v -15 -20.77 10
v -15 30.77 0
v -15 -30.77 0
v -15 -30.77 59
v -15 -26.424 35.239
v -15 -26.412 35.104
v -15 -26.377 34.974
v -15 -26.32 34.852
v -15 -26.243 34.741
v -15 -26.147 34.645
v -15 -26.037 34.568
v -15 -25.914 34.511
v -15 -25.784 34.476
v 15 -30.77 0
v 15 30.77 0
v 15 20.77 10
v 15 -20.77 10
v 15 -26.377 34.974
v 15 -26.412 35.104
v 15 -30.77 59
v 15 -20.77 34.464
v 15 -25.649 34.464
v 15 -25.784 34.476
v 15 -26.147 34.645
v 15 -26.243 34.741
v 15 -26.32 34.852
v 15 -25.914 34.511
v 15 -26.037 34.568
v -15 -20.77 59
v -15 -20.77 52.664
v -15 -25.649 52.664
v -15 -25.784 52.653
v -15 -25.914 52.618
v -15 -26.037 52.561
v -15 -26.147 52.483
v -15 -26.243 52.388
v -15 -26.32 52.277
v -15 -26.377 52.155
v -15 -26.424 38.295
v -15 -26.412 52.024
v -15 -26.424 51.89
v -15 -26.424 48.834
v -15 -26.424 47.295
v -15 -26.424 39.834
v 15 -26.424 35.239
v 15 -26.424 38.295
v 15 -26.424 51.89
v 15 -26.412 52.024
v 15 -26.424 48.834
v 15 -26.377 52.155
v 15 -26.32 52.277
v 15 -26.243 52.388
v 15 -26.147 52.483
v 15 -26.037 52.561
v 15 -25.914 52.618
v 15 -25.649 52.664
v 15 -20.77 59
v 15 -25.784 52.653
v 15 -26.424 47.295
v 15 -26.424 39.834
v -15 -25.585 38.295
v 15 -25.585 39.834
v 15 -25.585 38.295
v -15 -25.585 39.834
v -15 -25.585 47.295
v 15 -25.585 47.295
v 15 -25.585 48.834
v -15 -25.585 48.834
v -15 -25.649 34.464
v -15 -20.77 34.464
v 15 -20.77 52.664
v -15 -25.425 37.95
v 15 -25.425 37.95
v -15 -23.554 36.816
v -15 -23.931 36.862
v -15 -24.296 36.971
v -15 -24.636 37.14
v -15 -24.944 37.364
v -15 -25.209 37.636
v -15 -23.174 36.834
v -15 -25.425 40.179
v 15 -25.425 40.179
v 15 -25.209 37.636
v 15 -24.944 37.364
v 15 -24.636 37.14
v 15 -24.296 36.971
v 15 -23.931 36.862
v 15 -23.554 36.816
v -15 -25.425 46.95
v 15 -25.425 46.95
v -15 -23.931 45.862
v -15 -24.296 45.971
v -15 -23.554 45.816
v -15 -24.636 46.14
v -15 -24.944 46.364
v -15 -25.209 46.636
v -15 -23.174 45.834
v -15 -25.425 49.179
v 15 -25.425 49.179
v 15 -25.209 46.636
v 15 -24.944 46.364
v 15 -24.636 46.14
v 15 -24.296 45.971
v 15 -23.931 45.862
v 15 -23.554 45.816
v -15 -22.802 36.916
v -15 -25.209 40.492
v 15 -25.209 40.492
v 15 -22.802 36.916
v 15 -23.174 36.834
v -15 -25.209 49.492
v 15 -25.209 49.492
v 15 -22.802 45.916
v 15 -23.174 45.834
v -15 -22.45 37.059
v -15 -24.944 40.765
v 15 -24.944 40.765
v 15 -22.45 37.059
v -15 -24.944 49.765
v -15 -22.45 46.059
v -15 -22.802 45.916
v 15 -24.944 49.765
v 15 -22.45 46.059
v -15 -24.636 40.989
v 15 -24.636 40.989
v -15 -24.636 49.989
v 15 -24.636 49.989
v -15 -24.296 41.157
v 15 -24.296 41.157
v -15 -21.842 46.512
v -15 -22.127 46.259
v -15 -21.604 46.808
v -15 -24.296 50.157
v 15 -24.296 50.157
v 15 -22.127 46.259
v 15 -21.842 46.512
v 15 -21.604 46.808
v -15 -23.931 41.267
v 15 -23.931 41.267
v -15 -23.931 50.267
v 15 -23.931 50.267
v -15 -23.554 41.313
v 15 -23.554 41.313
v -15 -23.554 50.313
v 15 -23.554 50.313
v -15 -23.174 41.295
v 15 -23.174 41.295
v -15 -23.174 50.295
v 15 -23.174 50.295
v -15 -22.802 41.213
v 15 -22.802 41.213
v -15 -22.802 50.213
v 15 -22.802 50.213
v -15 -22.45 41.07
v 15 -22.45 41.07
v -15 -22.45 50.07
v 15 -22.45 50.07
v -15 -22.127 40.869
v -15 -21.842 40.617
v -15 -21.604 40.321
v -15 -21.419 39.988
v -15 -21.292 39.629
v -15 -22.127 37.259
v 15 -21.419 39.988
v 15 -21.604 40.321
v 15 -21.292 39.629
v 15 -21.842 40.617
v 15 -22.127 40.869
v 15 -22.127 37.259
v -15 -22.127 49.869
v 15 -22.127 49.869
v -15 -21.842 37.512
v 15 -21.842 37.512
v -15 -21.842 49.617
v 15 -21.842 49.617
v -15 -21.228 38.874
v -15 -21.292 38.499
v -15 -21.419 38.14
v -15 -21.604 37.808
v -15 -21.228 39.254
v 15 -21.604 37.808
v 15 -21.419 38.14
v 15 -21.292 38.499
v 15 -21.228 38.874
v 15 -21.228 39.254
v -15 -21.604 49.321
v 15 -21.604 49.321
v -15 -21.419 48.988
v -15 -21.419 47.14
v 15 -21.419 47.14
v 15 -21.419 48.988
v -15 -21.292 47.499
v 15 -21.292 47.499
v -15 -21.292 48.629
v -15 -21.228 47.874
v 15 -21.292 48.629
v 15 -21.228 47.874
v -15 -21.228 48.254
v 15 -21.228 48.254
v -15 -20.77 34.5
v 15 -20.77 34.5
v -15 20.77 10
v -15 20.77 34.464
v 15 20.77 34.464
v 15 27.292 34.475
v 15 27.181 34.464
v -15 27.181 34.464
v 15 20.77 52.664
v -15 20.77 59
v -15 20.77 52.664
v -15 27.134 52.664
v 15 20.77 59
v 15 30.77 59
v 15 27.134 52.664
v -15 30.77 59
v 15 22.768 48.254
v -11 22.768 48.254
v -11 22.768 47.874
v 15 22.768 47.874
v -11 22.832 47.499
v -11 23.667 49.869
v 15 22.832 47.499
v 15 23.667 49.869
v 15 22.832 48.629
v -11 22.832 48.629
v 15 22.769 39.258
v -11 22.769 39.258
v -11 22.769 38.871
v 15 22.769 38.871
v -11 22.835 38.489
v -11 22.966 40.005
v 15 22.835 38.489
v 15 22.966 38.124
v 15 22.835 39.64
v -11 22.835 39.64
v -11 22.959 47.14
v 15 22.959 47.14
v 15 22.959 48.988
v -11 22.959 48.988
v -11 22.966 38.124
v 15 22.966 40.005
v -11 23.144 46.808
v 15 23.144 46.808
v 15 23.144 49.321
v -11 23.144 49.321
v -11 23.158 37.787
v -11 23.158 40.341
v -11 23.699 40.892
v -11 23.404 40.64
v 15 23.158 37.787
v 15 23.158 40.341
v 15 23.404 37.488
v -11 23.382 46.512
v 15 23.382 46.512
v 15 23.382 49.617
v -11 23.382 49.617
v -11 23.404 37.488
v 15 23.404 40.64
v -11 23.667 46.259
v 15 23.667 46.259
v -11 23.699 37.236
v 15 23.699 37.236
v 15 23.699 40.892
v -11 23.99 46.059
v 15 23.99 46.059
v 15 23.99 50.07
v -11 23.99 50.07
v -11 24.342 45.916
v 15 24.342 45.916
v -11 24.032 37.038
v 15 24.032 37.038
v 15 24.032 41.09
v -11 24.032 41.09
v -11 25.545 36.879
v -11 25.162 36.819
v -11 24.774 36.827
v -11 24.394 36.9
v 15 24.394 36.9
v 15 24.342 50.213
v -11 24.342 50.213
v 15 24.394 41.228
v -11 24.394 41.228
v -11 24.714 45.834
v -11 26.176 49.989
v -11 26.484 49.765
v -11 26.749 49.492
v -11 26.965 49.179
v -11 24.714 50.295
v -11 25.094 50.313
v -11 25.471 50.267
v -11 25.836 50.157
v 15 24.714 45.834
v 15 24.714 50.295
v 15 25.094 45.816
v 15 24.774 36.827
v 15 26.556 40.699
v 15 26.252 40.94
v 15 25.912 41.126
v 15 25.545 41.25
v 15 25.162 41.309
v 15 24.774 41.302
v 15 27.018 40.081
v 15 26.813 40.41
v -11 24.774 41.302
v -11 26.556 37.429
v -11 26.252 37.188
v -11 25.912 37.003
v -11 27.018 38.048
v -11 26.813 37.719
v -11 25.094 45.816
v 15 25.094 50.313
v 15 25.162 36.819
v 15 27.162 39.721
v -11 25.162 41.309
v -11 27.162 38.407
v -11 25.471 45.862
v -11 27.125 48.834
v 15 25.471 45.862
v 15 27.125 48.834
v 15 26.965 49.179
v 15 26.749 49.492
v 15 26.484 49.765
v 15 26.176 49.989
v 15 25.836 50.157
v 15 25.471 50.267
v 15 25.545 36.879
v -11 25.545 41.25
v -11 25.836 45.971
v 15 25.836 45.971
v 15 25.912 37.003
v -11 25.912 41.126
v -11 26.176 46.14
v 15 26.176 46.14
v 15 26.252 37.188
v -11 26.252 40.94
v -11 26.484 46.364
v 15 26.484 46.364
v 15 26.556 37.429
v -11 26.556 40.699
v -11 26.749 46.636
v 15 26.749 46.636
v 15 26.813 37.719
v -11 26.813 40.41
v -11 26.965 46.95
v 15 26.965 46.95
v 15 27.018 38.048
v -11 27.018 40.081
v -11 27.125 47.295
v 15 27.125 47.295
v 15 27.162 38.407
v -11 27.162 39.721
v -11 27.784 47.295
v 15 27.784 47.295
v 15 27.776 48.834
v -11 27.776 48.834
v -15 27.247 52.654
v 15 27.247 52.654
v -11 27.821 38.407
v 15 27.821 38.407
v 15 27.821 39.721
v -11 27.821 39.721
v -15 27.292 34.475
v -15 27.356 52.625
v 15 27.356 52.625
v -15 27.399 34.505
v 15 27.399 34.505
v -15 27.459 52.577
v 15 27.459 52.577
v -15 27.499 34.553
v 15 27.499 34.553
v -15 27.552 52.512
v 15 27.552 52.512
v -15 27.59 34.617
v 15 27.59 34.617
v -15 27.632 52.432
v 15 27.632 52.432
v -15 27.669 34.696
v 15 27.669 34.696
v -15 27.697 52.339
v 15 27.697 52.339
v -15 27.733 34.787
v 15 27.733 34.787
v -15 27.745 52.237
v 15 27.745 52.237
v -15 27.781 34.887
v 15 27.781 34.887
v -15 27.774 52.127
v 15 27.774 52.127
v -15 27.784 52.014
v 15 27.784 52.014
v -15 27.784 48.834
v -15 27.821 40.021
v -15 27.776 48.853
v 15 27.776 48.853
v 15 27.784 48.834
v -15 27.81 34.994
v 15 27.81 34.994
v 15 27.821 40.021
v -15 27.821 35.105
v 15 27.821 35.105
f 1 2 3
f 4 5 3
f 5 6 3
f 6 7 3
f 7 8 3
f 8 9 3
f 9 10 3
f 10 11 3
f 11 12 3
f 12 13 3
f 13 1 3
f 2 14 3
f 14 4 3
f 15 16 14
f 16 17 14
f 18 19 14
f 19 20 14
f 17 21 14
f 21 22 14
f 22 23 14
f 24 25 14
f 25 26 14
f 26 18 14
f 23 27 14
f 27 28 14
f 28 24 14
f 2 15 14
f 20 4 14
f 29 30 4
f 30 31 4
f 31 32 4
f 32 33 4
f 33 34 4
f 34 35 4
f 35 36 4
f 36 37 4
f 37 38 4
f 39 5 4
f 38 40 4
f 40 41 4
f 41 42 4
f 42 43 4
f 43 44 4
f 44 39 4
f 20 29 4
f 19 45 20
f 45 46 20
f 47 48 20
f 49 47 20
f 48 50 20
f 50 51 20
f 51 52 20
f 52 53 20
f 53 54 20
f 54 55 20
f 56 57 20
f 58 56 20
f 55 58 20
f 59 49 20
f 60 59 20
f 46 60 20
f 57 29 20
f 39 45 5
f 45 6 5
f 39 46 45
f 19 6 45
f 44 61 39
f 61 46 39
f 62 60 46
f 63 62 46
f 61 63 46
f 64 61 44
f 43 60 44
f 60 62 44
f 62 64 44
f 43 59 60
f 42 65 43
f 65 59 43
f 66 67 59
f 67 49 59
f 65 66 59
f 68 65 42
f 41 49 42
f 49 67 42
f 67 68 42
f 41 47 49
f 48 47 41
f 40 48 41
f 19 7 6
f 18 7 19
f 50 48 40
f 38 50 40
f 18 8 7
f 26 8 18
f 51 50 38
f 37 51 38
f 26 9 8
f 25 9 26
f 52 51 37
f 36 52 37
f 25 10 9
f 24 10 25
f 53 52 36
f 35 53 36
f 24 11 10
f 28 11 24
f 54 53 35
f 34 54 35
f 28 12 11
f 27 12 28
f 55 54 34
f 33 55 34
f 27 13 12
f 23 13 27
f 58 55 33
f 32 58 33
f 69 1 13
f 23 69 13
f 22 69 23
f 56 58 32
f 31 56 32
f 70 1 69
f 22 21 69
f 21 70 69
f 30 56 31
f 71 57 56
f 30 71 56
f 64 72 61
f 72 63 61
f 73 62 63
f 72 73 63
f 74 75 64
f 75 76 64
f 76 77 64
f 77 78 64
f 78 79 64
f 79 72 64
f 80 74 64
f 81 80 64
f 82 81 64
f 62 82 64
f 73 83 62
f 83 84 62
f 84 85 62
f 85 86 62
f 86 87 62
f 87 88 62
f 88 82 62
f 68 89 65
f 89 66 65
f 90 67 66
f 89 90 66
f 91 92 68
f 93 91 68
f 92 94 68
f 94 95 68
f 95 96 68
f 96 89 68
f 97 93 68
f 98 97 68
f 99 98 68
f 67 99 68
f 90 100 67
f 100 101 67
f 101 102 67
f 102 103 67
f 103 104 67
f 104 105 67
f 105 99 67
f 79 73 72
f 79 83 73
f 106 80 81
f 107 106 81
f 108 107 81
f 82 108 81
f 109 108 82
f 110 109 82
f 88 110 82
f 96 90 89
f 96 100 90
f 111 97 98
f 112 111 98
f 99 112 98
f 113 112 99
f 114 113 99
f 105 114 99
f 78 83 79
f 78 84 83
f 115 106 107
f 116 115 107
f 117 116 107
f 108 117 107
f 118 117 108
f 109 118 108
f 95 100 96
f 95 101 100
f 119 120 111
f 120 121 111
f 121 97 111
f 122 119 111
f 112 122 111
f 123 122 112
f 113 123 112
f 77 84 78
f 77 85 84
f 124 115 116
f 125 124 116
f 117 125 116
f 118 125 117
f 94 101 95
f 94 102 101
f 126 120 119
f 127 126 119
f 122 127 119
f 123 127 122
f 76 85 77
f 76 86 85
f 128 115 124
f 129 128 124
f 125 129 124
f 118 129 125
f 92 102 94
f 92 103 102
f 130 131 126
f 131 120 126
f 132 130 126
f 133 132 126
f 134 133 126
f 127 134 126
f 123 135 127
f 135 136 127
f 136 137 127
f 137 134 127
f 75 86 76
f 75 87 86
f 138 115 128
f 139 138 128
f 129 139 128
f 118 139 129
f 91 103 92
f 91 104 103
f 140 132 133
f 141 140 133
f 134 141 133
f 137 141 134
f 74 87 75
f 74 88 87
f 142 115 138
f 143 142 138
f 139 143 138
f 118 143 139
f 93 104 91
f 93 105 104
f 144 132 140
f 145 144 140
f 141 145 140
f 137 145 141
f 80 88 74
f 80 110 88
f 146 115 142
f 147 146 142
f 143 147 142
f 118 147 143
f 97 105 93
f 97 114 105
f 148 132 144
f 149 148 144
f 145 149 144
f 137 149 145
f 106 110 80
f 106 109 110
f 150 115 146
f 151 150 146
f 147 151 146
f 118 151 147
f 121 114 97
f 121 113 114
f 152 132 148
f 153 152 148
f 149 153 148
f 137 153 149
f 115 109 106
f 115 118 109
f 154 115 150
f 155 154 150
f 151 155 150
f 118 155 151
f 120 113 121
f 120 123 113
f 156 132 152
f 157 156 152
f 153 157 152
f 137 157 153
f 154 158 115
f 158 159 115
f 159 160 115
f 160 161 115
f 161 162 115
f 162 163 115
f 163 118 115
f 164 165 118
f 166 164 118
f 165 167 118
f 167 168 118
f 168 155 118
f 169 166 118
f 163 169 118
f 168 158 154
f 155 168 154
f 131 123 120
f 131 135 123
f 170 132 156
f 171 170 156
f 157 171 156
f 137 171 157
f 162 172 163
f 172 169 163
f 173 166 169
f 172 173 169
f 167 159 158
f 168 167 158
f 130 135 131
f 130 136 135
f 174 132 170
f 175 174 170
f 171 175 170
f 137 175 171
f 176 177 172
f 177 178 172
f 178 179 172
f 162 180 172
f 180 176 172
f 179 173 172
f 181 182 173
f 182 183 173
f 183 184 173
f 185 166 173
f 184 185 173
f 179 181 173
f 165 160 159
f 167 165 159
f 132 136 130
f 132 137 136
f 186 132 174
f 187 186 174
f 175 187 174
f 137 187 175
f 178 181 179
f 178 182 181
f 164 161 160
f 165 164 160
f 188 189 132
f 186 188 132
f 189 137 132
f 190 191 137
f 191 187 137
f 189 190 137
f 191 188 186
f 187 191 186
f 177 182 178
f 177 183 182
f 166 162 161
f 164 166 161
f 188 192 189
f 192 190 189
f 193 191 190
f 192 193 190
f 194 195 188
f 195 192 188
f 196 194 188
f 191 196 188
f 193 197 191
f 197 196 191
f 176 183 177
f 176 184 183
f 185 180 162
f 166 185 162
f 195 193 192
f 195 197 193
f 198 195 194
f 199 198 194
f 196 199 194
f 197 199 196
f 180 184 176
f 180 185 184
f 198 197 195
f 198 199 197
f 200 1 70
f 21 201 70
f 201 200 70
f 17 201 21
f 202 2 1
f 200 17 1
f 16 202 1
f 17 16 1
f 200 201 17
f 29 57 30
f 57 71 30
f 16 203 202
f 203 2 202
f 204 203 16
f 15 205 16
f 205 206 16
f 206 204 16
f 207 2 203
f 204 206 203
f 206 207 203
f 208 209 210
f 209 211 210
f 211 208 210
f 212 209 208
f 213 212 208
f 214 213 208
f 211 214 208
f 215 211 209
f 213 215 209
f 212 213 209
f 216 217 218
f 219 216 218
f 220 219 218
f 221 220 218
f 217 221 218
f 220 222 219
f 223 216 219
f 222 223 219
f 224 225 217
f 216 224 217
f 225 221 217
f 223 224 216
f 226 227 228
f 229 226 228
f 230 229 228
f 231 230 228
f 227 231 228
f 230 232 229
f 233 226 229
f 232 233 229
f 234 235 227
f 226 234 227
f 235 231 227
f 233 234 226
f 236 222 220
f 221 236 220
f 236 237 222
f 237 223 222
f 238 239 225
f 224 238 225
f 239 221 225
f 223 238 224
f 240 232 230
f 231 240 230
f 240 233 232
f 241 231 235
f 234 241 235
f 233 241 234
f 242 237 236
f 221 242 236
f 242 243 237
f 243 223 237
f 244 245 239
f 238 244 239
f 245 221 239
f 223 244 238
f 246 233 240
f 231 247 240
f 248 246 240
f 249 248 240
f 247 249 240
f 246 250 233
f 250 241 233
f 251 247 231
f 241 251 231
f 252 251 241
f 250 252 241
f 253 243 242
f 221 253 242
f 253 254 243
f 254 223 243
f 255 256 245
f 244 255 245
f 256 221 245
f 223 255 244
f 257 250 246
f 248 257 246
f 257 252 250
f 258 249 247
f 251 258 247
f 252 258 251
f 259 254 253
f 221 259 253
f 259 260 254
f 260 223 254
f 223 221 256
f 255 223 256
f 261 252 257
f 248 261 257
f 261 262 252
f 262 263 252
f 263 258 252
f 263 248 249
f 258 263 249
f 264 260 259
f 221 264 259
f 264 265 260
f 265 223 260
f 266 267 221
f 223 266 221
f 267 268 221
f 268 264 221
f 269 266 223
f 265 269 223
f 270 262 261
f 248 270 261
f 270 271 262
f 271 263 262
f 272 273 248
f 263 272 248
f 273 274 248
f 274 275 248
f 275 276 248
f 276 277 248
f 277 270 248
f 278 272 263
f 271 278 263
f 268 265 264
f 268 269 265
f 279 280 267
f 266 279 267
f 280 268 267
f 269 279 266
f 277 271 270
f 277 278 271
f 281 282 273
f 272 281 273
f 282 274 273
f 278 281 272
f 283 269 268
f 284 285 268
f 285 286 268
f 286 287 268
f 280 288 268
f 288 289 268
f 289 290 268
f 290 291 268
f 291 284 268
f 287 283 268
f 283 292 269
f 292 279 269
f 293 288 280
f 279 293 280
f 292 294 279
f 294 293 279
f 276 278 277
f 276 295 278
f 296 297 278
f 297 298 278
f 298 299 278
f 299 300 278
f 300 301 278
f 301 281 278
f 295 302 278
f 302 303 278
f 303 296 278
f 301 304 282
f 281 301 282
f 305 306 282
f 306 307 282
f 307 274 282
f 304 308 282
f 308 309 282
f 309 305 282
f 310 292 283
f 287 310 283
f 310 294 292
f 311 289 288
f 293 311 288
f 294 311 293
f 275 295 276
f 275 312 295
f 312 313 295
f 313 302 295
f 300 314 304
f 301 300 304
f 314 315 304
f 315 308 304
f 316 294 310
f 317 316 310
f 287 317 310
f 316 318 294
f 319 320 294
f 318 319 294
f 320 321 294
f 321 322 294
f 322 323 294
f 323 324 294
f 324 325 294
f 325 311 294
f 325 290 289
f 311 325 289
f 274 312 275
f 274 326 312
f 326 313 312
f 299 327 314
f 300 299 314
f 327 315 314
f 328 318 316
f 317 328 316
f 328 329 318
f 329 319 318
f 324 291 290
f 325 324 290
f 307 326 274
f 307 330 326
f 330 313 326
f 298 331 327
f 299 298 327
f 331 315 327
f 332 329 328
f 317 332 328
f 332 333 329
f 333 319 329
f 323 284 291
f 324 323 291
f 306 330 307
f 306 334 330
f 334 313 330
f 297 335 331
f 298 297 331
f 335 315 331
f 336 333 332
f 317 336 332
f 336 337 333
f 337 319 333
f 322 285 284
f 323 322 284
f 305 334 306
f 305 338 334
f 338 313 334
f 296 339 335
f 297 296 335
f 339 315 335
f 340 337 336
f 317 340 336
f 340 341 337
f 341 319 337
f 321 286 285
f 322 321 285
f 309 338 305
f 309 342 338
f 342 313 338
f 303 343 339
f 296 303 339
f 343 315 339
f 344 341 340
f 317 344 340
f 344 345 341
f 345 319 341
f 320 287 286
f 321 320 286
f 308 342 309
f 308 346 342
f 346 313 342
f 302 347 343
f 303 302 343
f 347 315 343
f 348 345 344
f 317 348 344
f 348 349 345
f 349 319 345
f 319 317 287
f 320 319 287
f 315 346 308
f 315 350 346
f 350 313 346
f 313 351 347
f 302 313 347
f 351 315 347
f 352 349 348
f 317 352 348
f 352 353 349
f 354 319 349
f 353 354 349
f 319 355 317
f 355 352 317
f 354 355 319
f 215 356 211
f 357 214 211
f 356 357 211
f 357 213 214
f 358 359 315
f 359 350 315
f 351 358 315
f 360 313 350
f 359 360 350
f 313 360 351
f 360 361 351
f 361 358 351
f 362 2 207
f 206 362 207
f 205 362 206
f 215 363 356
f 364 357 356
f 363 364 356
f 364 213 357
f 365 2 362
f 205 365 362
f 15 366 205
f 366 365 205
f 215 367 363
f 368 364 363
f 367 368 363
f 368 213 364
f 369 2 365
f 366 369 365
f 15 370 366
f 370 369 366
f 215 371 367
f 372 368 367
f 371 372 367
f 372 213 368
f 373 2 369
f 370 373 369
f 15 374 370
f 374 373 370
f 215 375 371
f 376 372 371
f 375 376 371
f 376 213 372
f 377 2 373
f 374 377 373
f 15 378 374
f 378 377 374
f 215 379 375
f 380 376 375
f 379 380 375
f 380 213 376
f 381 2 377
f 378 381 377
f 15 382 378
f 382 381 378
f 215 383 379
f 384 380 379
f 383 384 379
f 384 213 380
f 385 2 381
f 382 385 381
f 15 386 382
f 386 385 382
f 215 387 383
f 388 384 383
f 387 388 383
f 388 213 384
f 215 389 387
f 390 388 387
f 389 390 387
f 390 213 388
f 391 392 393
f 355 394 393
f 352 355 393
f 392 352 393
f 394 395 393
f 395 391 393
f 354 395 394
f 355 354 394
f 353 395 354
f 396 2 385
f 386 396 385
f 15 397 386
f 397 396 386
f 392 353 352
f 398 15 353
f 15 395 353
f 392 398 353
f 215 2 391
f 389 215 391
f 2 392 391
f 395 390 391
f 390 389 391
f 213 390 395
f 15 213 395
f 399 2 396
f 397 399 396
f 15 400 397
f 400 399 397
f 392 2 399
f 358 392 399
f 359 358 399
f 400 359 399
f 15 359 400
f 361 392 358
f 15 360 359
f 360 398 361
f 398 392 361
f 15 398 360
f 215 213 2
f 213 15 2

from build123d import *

# Parameters (mm, degrees)
ESBO_O1_W                  = 30
ESBO_O1_H                  = 10
RESSALTO_EXTRUS_O1_DEPTH   = 59
RESSALTO_EXTRUS_O1_2_DEPTH = 59
ESBO_O2_W                  = 30
ESBO_O2_H                  = 41.54
RESSALTO_EXTRUS_O2_DEPTH   = 10
CORTE_EXTRUS_O1_DEPTH      = 73.991731724
CORTE_EXTRUS_O2_DEPTH      = 4


with BuildPart() as part:
    # Esboço1 → Ressalto-extrusão1 (new body)
    with BuildSketch(Plane.XY):
        with Locations((0, 25.77)):
            Rectangle(ESBO_O1_W, ESBO_O1_H)
    extrude(amount=RESSALTO_EXTRUS_O1_DEPTH)



with BuildPart() as body_2:
    # Esboço1 → Ressalto-extrus_o1 2 (new body)
    with BuildSketch(Plane.XY):
        with Locations((0, -25.77)):
            Rectangle(ESBO_O1_W, ESBO_O1_H)
    extrude(amount=RESSALTO_EXTRUS_O1_2_DEPTH)


with BuildPart() as part_1:
    add(part.part)

    add(body_2.part)  # Ressalto-extrusão2 merges body 2
    # Esboço2 → Ressalto-extrusão2 (add)
    with BuildSketch(Plane(origin=(0, 0, 0), x_dir=(-1, 0, 0), z_dir=(0, 0, -1))):
        Rectangle(ESBO_O2_W, ESBO_O2_H)
    extrude(amount=-RESSALTO_EXTRUS_O2_DEPTH)

    # Esboço3 → Corte-extrusão1 (cut, through all)
    with BuildSketch(Plane.ZY.offset(15)):
        with BuildLine():
            ThreePointArc((51.8897547, -26.423845407), (52.437454615, -26.196980674), (52.664319348, -25.649280759))
            Line((52.664319348, -25.649280759), (52.664319348, -20.77))
            Line((52.664319348, -20.77), (52.564319348, -20.77))
            Line((52.564319348, -20.77), (34.5, -20.77))
            Line((34.5, -20.77), (34.464319348, -20.770417185))
            Line((34.464319348, -20.770417185), (34.464319348, -25.649280759))
            ThreePointArc((34.464319348, -25.649280759), (34.69118408, -26.196980674), (35.238883995, -26.423845407))
            Line((35.238883995, -26.423845407), (37.994984805, -26.423845407))
            Line((37.994984805, -26.423845407), (38.294984805, -26.423845407))
            Line((38.294984805, -26.423845407), (38.294984805, -25.584623249))
            ThreePointArc((38.294984805, -25.584623249), (39.064319348, -21.220238146), (39.83365389, -25.584623249))
            Line((39.83365389, -25.584623249), (39.83365389, -26.423845407))
            Line((39.83365389, -26.423845407), (40.13365389, -26.423845407))
            Line((40.13365389, -26.423845407), (47.294984805, -26.423845407))
            Line((47.294984805, -26.423845407), (47.294984805, -25.584623249))
            ThreePointArc((47.294984805, -25.584623249), (48.064319348, -21.220238146), (48.83365389, -25.584623249))
            Line((48.83365389, -25.584623249), (48.83365389, -26.423845407))
            Line((48.83365389, -26.423845407), (49.215424515, -26.423845407))
            Line((49.215424515, -26.423845407), (51.8897547, -26.423845407))
        make_face()
        with BuildLine():
            Line((34.464319348, 27.162244637), (34.464319348, 20.77))
            Line((34.464319348, 20.77), (34.5, 20.77))
            Line((34.5, 20.77), (52.564319348, 20.77))
            Line((52.564319348, 20.77), (52.664319348, 20.77))
            Line((52.664319348, 20.77), (52.664319348, 27.13384671))
            ThreePointArc((52.664319348, 27.13384671), (52.473932816, 27.593480457), (52.014299068, 27.783866989))
            Line((52.014299068, 27.783866989), (48.83365389, 27.783866989))
            Line((48.83365389, 27.783866989), (48.853388433, 27.775806736))
            Line((48.853388433, 27.775806736), (48.83365389, 27.775908805))
            Line((48.83365389, 27.775908805), (48.83365389, 27.124623249))
            ThreePointArc((48.83365389, 27.124623249), (48.064319348, 22.760238146), (47.294984805, 27.124623249))
            Line((47.294984805, 27.124623249), (47.294984805, 27.783866989))
            Line((47.294984805, 27.783866989), (40.021105511, 27.821488377))
            Line((40.021105511, 27.821488377), (39.721105511, 27.821488377))
            Line((39.721105511, 27.821488377), (39.721105511, 27.162244637))
            ThreePointArc((39.721105511, 27.162244637), (39.064319348, 22.760238146), (38.407533184, 27.162244637))
            Line((38.407533184, 27.162244637), (38.407533184, 27.821488377))
            Line((38.407533184, 27.821488377), (38.107533184, 27.821488377))
            Line((38.107533184, 27.821488377), (35.104983392, 27.821488377))
            ThreePointArc((35.104983392, 27.821488377), (34.654639493, 27.631168232), (34.464319348, 27.180824333))
            Line((34.464319348, 27.180824333), (34.464319348, 27.162244637))
        make_face()
    extrude(amount=-CORTE_EXTRUS_O1_DEPTH, mode=Mode.SUBTRACT)

    # Esboço4 → Corte-extrusão2 (cut)
    with BuildSketch(Plane.ZY.offset(15)):
        with BuildLine():
            Line((47.294984805, 27.783866989), (48.853388433, 27.775806736))
            Line((48.853388433, 27.775806736), (48.853388433, 27.117338044))
            ThreePointArc((48.853388433, 27.117338044), (48.055619332, 22.760254966), (47.291568671, 27.123377136))
            Line((47.291568671, 27.123377136), (47.294984805, 27.783866989))
        make_face()
        with BuildLine():
            Line((38.407533184, 27.821488377), (38.407533184, 27.162244637))
            ThreePointArc((38.407533184, 27.162244637), (39.064319348, 22.760238146), (39.721105511, 27.162244637))
            Line((39.721105511, 27.162244637), (39.721105511, 27.821488377))
            Line((39.721105511, 27.821488377), (38.407533184, 27.821488377))
        make_face()
    extrude(amount=-CORTE_EXTRUS_O2_DEPTH, mode=Mode.SUBTRACT)


solid = part_1.part
